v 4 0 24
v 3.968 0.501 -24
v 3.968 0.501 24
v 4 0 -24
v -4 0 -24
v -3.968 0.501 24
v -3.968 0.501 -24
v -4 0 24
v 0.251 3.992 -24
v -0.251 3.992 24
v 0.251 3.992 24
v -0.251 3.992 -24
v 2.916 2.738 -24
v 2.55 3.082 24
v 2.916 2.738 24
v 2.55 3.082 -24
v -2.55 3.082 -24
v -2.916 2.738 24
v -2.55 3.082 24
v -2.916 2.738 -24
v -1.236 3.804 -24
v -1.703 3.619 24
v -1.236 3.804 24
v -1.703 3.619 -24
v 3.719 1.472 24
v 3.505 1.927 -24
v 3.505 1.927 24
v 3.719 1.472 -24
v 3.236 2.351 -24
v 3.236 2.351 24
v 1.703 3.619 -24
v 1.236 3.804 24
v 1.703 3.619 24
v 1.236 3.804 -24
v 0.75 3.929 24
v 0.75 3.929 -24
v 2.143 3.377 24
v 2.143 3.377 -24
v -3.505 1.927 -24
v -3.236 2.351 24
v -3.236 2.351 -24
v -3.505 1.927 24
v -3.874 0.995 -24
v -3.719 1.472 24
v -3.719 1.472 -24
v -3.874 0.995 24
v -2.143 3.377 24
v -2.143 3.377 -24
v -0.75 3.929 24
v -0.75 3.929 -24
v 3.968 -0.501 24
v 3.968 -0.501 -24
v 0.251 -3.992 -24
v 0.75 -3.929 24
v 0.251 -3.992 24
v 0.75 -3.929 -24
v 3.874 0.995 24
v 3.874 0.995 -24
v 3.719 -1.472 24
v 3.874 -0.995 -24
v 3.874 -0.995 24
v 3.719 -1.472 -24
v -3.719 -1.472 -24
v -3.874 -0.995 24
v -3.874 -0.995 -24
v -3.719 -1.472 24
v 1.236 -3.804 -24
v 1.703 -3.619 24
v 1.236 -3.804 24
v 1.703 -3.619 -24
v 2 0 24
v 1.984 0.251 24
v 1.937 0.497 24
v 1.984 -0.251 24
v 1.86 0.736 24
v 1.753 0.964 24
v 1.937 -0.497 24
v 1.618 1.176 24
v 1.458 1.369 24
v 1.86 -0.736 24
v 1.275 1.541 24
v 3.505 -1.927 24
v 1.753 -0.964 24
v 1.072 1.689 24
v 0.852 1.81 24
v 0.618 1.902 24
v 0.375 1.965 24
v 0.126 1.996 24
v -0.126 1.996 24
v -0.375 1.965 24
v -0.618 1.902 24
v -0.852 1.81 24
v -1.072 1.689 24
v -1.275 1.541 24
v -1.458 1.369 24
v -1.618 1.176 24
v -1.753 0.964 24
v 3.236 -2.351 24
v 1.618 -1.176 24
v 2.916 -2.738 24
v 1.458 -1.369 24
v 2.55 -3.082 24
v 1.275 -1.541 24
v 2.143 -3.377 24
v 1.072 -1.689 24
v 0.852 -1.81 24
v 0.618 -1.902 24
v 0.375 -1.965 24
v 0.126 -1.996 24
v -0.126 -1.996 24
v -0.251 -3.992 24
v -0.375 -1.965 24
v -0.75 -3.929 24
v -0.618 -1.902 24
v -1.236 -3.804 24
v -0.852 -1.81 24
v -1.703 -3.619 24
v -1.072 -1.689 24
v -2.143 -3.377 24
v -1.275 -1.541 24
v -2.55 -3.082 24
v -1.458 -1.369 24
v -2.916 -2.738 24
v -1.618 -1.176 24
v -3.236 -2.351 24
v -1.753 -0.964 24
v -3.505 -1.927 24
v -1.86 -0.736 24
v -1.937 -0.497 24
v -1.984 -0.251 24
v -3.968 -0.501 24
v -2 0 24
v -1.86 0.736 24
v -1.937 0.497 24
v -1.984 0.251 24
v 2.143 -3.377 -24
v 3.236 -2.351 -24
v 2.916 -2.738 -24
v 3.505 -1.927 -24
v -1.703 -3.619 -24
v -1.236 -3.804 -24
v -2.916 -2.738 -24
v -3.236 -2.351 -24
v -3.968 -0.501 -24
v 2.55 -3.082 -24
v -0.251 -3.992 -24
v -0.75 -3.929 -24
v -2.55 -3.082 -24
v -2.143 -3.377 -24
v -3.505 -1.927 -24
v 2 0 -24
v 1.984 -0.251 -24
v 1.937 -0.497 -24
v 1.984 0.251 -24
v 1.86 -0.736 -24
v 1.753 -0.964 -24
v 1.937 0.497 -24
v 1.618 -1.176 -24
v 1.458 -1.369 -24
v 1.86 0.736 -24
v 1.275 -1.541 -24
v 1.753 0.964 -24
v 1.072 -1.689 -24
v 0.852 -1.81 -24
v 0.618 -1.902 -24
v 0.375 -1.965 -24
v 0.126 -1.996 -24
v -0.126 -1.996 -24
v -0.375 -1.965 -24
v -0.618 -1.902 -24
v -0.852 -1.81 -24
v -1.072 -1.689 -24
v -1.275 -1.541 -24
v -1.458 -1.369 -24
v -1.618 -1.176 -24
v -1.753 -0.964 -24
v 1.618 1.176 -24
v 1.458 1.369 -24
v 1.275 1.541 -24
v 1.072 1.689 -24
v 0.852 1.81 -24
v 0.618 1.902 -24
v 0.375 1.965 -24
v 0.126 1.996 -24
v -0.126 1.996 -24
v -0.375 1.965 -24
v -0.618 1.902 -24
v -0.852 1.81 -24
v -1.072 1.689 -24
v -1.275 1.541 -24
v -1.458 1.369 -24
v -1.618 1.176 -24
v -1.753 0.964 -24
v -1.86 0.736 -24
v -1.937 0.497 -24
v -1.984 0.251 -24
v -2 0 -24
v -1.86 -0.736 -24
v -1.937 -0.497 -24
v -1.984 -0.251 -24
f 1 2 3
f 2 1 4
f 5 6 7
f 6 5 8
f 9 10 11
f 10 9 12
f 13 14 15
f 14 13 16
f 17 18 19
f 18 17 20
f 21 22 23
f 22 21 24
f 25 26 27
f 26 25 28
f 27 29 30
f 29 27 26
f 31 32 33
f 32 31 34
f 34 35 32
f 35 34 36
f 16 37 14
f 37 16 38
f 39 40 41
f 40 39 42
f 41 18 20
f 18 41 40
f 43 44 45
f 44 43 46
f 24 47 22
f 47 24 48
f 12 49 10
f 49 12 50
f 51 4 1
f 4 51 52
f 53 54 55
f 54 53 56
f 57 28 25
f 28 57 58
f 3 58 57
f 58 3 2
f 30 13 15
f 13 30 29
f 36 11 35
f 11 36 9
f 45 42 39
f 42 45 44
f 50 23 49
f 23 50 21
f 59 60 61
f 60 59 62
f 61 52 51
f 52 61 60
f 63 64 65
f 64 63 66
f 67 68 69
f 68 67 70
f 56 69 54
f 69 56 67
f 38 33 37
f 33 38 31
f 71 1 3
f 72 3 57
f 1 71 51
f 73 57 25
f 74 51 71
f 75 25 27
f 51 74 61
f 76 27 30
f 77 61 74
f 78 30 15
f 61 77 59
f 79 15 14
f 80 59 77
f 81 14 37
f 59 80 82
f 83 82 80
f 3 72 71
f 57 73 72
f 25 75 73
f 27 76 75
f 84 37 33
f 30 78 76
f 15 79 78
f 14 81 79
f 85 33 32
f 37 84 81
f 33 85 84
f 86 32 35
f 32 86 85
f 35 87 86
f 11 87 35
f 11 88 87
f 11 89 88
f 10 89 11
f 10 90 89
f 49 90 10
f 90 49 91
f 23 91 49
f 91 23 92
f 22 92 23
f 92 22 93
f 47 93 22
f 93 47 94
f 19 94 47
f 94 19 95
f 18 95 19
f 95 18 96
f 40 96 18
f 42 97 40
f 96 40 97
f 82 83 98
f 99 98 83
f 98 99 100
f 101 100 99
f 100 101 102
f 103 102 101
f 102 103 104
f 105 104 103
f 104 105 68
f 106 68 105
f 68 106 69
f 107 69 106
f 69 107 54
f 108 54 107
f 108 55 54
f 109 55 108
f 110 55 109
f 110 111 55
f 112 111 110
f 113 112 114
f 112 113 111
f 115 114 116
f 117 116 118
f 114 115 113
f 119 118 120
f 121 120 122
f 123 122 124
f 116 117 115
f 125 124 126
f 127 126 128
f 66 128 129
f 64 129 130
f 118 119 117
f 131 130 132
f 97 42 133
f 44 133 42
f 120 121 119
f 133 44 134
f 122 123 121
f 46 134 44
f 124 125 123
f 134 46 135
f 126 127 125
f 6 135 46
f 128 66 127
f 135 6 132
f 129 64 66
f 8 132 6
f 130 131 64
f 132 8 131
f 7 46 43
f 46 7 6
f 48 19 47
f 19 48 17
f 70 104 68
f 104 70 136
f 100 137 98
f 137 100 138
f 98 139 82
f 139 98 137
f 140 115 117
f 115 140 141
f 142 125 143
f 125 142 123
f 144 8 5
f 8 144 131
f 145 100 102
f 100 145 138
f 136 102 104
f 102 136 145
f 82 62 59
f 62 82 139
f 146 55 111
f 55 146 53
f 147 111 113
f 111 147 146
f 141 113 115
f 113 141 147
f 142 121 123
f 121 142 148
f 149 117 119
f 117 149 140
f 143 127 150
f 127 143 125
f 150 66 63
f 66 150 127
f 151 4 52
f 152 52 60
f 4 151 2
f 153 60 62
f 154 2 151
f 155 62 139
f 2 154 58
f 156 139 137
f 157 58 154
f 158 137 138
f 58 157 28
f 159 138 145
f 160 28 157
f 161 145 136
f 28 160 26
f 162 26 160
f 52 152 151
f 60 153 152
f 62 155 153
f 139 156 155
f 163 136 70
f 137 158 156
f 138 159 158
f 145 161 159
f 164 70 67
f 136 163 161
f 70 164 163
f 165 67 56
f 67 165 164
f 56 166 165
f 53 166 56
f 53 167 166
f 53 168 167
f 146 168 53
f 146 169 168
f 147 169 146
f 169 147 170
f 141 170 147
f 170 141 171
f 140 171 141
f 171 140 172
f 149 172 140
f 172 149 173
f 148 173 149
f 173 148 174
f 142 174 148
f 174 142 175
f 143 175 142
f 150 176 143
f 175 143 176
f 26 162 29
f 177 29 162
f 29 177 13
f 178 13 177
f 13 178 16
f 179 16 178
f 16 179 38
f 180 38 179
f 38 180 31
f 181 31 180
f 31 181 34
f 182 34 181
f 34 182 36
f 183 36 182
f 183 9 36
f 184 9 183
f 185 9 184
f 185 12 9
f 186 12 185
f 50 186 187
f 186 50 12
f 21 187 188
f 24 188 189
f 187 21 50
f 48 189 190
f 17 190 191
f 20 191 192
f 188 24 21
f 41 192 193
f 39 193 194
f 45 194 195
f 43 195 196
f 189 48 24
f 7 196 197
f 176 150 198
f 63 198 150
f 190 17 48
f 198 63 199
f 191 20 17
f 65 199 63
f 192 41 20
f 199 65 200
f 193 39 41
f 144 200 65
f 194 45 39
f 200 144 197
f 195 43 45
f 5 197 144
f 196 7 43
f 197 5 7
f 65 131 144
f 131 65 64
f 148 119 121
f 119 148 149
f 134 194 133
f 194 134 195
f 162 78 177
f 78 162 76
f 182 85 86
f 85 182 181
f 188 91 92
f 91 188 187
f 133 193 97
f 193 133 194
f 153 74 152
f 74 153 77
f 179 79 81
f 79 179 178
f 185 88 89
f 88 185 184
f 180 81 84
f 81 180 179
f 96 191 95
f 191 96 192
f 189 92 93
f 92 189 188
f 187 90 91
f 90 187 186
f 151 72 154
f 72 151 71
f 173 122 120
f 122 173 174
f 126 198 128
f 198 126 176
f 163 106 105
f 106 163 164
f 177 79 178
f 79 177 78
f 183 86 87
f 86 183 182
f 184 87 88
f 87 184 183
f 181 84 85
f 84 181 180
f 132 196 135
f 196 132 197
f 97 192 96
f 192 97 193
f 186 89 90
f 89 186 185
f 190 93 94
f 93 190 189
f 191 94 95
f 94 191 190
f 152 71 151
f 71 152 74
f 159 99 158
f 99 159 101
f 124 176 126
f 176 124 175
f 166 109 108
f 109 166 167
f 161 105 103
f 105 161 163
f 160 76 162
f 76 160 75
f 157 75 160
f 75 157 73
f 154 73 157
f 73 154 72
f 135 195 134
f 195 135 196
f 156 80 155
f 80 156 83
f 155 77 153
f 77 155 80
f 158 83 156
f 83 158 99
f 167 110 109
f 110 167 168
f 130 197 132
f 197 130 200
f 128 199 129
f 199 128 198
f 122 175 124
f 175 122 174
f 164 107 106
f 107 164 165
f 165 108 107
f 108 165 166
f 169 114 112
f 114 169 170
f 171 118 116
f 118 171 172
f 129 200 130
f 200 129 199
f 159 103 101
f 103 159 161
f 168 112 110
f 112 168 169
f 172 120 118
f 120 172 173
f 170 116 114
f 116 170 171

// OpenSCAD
$fn = 50;


difference() {
	union() {
		translate(v = [0, 0, -24.0000000000]) {
			cylinder(h = 48, r = 4.0000000000);
		}
	}
	union() {
		translate(v = [0, 0, -100.0000000000]) {
			cylinder(h = 200, r = 2.0000000000);
		}
	}
}
